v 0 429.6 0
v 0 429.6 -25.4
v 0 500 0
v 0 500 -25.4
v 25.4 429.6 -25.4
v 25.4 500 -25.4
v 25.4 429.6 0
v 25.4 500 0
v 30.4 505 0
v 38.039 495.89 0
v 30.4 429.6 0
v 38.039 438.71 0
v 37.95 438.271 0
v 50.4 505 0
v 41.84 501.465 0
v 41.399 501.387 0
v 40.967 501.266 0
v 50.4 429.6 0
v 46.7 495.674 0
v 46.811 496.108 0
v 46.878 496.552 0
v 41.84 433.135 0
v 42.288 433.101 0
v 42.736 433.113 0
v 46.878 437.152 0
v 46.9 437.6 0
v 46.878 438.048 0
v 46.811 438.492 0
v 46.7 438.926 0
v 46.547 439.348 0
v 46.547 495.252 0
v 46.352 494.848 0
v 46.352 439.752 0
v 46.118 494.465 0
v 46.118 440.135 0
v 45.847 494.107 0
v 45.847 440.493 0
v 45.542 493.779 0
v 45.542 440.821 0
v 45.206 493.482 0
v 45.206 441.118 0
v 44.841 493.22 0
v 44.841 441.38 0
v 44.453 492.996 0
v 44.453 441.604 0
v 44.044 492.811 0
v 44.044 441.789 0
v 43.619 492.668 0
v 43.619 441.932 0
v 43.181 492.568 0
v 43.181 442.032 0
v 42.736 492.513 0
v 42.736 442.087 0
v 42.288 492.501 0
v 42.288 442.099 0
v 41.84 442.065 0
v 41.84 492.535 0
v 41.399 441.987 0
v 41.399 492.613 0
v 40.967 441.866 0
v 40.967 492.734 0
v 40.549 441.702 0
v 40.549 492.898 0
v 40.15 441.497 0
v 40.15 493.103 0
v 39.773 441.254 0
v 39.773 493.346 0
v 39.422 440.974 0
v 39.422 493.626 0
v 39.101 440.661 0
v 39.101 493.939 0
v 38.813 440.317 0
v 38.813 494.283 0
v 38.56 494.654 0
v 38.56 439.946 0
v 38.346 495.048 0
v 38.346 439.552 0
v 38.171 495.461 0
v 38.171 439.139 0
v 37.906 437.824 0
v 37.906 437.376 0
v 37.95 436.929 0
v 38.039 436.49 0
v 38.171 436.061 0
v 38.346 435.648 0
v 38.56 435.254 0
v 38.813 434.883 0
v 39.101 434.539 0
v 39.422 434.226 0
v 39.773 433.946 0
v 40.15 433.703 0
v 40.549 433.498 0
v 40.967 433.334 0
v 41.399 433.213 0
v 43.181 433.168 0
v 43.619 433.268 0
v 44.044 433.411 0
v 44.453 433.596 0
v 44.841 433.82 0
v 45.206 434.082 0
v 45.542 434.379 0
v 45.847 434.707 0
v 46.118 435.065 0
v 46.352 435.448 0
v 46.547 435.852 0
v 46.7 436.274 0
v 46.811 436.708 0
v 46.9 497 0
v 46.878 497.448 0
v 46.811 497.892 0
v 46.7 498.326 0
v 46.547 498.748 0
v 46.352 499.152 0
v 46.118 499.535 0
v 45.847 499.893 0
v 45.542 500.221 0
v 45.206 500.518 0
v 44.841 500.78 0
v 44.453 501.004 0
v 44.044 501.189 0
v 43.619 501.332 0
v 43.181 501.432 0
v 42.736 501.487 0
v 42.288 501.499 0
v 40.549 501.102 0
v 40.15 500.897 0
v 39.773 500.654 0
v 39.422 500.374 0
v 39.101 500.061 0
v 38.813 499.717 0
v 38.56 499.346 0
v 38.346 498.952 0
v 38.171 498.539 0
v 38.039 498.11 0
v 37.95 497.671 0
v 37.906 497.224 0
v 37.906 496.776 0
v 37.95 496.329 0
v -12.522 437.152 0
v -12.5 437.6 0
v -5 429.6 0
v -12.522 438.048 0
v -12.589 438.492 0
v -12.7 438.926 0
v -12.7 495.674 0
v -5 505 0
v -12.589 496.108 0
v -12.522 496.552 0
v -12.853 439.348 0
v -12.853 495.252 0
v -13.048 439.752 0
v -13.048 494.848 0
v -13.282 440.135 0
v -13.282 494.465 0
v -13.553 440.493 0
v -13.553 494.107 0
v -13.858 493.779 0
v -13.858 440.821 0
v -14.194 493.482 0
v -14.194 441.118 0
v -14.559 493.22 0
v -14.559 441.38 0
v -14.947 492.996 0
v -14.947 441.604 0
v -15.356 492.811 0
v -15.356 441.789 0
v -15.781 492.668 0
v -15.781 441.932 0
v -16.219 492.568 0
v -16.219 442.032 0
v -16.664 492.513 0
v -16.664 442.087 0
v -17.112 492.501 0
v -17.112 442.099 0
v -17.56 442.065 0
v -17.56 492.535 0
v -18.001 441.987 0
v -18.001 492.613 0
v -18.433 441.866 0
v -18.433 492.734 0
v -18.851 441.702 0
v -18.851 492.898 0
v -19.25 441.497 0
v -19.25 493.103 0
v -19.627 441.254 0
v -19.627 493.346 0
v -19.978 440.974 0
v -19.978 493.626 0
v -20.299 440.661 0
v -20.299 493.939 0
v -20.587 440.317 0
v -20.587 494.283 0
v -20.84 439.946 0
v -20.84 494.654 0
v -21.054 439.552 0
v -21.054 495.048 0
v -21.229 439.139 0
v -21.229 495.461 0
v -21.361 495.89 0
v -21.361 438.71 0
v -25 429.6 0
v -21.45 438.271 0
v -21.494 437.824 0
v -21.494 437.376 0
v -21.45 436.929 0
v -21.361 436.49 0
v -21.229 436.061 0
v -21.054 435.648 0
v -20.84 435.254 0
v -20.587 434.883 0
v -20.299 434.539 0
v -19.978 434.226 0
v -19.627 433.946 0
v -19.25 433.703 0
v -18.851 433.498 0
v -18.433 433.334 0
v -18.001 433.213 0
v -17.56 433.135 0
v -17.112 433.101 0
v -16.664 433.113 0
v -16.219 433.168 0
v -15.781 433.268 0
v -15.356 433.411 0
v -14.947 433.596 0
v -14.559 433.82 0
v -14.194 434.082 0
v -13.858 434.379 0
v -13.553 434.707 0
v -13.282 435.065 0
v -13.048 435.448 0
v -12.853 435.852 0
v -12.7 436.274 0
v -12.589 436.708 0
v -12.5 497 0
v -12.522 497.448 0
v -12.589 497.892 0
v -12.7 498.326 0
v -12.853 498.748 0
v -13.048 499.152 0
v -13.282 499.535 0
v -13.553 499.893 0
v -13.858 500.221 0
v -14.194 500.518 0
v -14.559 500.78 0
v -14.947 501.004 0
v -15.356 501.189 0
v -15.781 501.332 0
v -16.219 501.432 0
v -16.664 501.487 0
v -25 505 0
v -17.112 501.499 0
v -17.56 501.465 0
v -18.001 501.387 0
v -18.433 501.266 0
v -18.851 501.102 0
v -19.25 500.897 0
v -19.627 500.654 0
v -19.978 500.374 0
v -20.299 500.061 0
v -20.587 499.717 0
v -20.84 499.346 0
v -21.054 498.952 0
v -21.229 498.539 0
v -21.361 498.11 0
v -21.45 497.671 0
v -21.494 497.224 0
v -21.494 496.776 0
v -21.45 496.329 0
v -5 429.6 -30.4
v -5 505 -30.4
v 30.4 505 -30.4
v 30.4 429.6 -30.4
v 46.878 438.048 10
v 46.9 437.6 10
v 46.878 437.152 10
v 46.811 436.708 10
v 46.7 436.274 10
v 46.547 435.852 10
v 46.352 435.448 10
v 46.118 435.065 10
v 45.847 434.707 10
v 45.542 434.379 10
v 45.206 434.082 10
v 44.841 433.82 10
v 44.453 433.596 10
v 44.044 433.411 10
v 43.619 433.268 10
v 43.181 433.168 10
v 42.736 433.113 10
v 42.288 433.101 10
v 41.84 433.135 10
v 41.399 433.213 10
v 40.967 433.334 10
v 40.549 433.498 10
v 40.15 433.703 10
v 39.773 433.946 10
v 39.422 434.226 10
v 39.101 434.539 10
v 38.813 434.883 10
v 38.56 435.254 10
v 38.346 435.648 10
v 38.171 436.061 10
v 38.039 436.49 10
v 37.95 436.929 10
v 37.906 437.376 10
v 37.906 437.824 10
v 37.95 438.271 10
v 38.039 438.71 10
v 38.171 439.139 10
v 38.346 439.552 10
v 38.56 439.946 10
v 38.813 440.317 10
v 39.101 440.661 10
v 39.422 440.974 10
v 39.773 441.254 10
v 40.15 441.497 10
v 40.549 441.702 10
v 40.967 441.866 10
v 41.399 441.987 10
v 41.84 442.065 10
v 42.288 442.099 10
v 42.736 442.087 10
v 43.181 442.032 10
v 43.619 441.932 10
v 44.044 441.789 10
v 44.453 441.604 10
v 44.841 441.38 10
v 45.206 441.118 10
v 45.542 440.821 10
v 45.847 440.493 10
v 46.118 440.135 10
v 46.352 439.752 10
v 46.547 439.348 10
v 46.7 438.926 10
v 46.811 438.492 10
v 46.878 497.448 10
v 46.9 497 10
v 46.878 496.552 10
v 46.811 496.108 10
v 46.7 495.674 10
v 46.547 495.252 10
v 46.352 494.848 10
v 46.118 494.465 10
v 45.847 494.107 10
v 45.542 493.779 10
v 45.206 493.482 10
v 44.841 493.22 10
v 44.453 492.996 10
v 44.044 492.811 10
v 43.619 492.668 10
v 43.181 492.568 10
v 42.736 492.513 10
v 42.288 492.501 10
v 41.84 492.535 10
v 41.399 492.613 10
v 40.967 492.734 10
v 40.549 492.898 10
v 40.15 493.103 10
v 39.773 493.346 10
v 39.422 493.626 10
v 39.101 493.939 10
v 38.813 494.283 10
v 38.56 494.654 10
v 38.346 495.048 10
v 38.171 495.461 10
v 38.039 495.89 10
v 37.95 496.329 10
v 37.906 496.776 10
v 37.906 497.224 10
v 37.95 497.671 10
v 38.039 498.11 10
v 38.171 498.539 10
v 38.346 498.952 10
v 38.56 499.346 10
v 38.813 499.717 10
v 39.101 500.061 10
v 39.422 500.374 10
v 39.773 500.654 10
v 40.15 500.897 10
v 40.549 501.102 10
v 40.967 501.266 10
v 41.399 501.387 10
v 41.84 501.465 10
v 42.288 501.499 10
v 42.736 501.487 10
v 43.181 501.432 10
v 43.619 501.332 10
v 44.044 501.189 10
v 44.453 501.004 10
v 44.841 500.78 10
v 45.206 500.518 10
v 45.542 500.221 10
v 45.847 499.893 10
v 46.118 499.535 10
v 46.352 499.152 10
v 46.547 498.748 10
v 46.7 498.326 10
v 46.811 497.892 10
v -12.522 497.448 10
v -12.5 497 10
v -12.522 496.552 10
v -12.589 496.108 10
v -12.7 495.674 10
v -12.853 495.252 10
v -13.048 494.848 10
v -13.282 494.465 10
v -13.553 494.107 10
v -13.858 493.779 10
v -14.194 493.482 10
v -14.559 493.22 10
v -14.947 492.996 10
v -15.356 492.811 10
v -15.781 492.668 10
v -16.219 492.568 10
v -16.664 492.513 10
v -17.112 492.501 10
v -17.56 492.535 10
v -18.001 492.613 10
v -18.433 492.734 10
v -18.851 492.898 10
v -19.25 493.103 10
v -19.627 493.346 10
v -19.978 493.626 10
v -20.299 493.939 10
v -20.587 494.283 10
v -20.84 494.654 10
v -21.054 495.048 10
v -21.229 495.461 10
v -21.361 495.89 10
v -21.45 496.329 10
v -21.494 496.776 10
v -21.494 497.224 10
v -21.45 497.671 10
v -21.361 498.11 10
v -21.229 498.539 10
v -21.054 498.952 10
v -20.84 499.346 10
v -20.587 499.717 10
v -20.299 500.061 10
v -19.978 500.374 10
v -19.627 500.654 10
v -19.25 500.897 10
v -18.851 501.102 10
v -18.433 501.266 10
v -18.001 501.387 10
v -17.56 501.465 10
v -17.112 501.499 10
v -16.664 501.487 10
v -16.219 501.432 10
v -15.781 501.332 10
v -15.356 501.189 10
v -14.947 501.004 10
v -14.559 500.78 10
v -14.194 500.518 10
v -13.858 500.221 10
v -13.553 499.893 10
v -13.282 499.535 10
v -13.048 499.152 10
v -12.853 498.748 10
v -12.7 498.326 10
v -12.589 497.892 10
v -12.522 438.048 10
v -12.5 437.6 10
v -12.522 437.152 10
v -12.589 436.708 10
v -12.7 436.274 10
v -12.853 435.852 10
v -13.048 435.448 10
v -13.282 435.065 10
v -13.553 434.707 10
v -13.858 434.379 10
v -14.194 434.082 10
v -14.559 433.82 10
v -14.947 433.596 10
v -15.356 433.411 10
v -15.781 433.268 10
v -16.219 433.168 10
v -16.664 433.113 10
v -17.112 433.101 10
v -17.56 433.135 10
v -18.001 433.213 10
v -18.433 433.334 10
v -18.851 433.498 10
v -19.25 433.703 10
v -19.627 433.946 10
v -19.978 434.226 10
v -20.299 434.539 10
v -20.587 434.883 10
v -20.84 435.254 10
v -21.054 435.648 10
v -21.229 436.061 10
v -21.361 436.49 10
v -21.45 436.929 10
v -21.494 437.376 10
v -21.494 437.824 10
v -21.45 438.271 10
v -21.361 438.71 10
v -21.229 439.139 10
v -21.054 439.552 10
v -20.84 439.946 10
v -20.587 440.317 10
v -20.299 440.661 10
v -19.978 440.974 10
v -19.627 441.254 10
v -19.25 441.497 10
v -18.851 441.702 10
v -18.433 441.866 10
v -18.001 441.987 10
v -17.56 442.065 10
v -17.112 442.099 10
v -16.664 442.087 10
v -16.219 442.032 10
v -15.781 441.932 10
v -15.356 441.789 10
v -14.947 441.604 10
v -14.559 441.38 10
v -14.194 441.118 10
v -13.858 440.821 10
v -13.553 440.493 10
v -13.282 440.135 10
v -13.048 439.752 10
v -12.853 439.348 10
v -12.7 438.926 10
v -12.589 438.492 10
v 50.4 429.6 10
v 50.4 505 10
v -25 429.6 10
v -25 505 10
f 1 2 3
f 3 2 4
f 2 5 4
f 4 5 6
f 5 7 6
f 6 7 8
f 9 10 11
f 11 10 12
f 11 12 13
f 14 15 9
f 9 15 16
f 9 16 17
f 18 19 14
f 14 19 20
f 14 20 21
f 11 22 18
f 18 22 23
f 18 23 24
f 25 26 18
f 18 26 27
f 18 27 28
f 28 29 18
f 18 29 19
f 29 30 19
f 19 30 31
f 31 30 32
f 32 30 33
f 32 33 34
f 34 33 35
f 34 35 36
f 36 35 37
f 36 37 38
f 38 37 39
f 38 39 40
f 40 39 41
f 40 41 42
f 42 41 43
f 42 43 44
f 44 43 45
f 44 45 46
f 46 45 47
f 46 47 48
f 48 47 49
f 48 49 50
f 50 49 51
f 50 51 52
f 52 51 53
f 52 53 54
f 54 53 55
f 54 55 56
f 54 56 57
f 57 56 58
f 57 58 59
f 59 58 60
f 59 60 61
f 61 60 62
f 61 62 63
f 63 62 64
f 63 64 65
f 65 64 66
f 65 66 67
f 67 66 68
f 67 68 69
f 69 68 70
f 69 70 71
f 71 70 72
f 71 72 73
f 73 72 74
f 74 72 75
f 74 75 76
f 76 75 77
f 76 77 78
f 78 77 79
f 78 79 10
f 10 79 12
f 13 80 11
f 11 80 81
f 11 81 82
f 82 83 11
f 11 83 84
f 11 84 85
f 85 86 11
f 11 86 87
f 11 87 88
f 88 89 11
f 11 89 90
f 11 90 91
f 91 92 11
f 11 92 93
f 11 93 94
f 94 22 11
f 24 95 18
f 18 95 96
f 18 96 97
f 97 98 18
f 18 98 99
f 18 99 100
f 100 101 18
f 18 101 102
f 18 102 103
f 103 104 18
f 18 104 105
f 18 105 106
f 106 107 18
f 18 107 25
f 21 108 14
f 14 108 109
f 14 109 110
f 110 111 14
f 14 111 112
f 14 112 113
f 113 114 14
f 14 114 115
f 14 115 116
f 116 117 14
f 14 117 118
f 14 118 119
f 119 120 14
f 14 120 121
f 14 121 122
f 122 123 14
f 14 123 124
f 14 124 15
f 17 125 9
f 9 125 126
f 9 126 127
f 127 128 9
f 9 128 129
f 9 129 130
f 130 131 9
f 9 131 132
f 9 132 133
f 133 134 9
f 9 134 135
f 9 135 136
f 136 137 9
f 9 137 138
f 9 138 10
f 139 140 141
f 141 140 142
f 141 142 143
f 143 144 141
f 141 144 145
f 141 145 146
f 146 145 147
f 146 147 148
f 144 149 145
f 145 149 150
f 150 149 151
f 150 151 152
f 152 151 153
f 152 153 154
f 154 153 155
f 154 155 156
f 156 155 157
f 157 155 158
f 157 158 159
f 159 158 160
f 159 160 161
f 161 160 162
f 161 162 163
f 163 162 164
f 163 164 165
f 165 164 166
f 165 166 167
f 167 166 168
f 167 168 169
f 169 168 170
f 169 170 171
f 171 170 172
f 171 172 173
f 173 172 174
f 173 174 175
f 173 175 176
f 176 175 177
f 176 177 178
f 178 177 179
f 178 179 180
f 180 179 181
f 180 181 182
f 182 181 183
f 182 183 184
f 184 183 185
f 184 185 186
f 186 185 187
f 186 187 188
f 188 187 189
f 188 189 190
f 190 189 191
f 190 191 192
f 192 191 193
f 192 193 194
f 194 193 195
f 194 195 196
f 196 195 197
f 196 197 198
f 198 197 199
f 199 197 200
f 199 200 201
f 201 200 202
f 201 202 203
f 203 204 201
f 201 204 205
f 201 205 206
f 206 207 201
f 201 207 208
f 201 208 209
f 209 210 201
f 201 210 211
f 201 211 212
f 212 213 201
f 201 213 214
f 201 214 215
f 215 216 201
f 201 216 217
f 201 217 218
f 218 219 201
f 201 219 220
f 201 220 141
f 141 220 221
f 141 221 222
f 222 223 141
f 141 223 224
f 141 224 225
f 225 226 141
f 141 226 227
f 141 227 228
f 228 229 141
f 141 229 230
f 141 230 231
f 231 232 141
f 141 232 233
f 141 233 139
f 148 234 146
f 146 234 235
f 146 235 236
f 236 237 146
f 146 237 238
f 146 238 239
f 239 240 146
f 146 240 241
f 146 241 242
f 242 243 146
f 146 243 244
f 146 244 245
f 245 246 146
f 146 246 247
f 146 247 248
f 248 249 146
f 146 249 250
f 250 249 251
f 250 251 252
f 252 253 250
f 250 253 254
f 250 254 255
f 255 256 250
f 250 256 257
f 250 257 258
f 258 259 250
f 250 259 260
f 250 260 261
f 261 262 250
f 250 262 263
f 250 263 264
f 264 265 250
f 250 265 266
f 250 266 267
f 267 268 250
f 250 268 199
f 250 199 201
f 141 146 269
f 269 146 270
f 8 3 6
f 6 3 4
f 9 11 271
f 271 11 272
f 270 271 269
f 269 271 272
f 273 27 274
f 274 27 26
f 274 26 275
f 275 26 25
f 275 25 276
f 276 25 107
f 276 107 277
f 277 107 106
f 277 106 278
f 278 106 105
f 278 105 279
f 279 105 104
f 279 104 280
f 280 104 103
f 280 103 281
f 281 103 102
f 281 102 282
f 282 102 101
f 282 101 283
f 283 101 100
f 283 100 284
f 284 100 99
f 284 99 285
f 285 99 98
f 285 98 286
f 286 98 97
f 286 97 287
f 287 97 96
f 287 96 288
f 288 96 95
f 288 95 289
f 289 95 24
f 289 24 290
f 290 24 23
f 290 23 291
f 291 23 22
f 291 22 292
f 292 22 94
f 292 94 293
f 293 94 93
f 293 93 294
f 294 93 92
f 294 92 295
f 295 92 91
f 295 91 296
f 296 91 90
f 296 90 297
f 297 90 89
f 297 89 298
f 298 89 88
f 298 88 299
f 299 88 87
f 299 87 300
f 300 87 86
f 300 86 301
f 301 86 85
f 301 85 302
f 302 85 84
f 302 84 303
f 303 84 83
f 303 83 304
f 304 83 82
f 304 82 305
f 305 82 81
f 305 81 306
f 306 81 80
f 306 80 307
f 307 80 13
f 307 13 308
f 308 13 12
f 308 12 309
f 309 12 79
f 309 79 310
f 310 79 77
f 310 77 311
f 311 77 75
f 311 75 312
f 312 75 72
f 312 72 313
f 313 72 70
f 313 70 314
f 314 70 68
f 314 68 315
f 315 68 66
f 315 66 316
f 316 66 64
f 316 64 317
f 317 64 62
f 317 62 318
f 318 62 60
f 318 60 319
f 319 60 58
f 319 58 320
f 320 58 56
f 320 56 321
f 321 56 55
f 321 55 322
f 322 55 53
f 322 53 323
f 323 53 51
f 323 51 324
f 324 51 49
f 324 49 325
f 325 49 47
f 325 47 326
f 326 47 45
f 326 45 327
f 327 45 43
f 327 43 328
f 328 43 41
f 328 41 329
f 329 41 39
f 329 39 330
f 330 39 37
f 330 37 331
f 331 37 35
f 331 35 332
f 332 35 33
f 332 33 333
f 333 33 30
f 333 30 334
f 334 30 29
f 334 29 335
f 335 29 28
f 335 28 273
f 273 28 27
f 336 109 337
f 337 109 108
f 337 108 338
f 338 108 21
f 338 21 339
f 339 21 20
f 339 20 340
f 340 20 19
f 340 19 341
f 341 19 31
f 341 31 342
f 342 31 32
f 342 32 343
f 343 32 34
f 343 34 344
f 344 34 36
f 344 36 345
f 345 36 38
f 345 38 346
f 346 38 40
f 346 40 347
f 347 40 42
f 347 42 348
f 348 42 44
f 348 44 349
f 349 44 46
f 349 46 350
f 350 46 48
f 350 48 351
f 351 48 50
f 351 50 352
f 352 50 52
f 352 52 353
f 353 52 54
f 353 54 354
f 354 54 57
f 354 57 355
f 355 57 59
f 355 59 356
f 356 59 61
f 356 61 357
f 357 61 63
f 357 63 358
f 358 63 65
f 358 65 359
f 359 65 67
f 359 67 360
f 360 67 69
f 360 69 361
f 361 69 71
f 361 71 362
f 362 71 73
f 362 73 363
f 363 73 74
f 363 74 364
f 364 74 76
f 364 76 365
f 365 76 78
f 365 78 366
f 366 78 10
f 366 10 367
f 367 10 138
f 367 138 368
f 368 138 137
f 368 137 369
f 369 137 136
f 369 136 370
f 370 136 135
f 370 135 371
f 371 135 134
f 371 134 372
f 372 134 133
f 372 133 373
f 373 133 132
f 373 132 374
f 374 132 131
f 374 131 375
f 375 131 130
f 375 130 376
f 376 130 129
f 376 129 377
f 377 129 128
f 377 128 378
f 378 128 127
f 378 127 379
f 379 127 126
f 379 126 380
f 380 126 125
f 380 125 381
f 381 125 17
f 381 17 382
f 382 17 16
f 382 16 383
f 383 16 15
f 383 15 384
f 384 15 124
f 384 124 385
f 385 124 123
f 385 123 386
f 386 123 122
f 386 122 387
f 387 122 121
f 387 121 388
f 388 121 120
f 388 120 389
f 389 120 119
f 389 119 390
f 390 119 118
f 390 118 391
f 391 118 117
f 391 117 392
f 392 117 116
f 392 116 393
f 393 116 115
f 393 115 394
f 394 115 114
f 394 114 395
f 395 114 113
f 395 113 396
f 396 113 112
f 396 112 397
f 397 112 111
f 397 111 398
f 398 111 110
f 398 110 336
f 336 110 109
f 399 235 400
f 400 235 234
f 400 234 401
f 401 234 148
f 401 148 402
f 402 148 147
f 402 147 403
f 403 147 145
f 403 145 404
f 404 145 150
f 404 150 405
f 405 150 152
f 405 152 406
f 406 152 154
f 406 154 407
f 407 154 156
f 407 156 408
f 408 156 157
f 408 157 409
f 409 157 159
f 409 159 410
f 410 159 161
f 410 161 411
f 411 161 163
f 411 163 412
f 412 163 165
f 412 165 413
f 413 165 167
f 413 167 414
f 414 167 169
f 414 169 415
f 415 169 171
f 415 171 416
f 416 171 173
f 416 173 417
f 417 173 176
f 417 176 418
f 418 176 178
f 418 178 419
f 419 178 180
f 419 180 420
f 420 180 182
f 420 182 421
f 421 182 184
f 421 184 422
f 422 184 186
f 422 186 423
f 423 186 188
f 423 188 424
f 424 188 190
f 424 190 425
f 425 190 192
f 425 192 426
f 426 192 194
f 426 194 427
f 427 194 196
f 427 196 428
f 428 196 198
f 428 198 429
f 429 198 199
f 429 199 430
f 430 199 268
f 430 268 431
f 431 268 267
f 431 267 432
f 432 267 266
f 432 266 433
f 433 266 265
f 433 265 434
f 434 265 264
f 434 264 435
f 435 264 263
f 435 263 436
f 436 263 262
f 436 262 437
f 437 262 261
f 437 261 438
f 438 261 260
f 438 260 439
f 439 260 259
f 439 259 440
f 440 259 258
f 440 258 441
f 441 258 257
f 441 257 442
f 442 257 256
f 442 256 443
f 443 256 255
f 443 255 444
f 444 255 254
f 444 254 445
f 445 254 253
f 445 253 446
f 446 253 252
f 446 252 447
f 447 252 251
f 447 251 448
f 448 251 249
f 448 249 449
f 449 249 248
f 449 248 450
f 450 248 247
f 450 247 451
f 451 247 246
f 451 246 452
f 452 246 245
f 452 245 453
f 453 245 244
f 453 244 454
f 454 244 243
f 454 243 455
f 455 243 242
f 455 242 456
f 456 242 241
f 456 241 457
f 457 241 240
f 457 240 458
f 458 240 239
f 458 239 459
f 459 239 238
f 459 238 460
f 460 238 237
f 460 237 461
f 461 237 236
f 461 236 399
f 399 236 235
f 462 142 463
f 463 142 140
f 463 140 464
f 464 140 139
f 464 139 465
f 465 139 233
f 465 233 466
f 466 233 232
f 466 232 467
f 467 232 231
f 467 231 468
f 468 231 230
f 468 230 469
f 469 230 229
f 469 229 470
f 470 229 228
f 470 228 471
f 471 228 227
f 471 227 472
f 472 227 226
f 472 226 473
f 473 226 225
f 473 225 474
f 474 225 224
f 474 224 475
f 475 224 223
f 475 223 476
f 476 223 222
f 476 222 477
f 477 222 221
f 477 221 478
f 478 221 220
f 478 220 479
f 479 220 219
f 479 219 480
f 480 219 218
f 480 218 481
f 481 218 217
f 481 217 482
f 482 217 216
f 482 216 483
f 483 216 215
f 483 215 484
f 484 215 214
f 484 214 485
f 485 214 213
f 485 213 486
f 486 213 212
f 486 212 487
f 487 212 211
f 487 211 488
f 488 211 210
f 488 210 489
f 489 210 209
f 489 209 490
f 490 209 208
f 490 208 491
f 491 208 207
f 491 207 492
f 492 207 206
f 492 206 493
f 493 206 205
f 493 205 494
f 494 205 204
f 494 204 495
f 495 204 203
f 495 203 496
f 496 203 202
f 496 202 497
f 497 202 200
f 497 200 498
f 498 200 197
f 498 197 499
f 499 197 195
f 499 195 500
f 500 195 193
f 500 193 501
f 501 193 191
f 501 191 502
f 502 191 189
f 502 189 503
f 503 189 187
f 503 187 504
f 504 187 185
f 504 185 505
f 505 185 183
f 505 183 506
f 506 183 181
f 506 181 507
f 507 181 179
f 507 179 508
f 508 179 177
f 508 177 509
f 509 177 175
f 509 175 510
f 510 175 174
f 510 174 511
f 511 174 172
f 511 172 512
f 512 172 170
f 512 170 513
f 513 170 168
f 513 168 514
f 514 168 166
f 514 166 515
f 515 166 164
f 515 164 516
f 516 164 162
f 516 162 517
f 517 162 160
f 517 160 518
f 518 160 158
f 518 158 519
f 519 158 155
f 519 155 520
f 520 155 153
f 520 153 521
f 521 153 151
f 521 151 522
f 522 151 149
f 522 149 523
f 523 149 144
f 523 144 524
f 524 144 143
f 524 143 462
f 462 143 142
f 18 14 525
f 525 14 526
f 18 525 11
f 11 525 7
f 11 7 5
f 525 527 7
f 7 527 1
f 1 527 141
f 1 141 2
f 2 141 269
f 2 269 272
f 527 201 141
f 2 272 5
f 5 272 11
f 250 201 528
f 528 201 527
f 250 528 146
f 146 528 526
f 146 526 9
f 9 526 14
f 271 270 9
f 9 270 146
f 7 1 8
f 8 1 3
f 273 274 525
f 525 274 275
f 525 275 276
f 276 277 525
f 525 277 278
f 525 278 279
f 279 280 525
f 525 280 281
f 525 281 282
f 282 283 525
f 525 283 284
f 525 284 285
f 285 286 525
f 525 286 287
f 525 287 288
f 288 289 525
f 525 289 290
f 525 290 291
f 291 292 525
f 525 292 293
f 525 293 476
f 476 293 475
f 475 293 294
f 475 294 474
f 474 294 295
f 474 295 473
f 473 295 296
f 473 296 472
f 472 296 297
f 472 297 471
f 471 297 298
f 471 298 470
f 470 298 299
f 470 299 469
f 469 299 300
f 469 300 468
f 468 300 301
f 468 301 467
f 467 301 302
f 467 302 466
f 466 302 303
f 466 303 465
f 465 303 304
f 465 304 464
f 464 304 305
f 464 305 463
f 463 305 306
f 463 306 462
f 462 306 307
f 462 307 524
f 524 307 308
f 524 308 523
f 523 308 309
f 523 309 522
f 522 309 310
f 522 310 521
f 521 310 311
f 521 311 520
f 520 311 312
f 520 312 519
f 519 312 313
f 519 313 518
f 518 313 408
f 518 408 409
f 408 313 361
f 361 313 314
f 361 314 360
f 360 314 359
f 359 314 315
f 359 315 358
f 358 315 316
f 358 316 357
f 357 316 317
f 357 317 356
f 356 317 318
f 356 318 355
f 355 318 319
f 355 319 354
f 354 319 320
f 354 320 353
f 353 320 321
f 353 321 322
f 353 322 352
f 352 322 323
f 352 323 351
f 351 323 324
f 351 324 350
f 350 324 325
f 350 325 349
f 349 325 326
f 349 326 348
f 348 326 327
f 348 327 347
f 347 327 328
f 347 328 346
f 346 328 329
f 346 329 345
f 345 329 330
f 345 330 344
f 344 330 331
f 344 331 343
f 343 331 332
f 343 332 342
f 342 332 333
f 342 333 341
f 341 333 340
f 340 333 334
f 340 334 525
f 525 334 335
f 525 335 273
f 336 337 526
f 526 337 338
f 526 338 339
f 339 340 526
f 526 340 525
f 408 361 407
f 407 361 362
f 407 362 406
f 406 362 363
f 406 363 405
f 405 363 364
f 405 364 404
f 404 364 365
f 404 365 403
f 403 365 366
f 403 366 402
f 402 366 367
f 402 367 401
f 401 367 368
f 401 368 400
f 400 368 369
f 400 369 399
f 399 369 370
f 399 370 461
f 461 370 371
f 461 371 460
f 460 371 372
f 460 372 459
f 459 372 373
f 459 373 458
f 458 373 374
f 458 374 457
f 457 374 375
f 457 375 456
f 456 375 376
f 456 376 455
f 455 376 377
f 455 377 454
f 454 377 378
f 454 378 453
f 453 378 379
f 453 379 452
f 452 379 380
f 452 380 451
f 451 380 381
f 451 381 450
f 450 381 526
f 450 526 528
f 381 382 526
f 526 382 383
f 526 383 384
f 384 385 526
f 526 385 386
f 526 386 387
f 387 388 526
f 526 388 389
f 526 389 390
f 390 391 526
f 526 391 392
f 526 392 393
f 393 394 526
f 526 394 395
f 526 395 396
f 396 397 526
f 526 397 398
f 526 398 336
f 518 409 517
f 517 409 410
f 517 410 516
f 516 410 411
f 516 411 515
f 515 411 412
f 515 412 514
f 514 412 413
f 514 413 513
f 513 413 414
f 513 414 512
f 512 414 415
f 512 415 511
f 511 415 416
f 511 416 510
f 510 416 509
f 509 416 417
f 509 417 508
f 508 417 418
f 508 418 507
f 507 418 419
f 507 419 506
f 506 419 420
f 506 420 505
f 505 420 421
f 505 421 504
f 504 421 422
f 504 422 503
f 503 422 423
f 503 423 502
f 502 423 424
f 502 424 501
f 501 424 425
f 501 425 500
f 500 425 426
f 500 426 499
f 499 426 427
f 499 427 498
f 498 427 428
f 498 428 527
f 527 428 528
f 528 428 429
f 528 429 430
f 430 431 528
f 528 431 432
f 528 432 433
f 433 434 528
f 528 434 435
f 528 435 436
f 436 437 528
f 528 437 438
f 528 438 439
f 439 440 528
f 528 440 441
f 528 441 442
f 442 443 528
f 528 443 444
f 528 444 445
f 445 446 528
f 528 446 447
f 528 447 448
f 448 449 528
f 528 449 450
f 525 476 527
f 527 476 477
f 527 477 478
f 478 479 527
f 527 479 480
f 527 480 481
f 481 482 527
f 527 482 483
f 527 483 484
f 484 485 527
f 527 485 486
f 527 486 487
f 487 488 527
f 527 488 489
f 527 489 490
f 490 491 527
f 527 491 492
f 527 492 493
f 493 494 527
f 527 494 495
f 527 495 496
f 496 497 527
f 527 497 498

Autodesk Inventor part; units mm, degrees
ref_plane "YZ Plane" through (0, 0, 0) normal (1, 0, 0) x (0, 1, 0)
ref_plane "XZ Plane" through (0, 0, 0) normal (0, 1, 0) x (-1, 0, 0)
ref_plane "XY Plane" through (0, 0, 0) normal (0, 0, 1) x (1, 0, 0)
sketch "Sketch1" plane through (0, 0, 0) normal (0, 0, 1) x (1, 0, 0)
  line L0 (0, 0) -> (25.4, 0) projected
  line L1 (25.4, 0) -> (25.4, 500) projected
  line L2 (0, 500) -> (25.4, 500) projected
  line L3 (0, 0) -> (0, 500) projected
  line L4 (115.4, 0) -> (140.8, 0) projected
  line L5 (140.8, 0) -> (140.8, 500) projected
  line L6 (115.4, 500) -> (140.8, 500) projected
  line L7 (115.4, 0) -> (115.4, 500) projected
  line L8 (-25, 505) -> (50.4, 505)
  line L9 (50.4, 505) -> (50.4, 429.6)
  line L10 (50.4, 429.6) -> (-25, 429.6)
  line L11 (-25, 429.6) -> (-25, 505)
  circle A0 centre (-17, 437.6) radius 4.5
  circle A1 centre (-17, 497) radius 4.5
  circle A2 centre (42.4, 497) radius 4.5
  circle A3 centre (42.4, 437.6) radius 4.5
  dimension "d0" = 25
  dimension "d31" = 25
  dimension "d32" = 5
  dimension "d33" = 9
  dimension "d34" = 9
  dimension "d35" = 9
  dimension "d36" = 9
  dimension "d37" = 8
  dimension "d38" = 8
  dimension "d39" = 8
  dimension "d40" = 8
  dimension "d41" = 8
  dimension "d42" = 8
  dimension "d43" = 8
  dimension "d44" = 8
extrude "Extrusion1" add sketch "Sketch1" along normal blind 10 contours L10 L11 L8 L9 L1 L2 L3 | L3 L2 L1 L10
sketch "Sketch3" plane through (0, 0, 0) normal (0, 0, -1) x (-1, 0, 0)
  line L0 (5, 505) -> (-30.4, 505)
  line L1 (-30.4, 505) -> (-30.4, 500)
  line L2 (-30.4, 500) -> (5, 500)
  line L3 (5, 500) -> (5, 505)
  line L4 (25, 505) -> (-50.4, 505) projected
  line L5 (25, 429.6) -> (25, 505) projected
  point P0 (0, 0)
  dimension "d45" = 35.4
  dimension "d46" = 20
  dimension "d47" = 5
extrude "Extrusion2" add sketch "Sketch3" along normal blind 30.4
sketch "Sketch5" plane through (-5, 500, 0) normal (0, -1, 0) x (1, 0, 0)
  line L0 (0, -30.4) -> (5, -30.4)
  line L1 (5, -30.4) -> (5, 0)
  line L2 (5, 0) -> (0, 0)
  line L3 (0, 0) -> (0, -30.4)
  line L4 (5, -30.4) -> (30.4, -30.4)
  line L5 (30.4, -30.4) -> (30.4, -25.4)
  line L6 (30.4, -25.4) -> (5, -25.4)
  line L7 (5, -25.4) -> (5, -30.4)
  line L8 (35.4, -30.4) -> (30.4, -30.4)
  line L9 (30.4, -30.4) -> (30.4, 0)
  line L10 (30.4, 0) -> (35.4, 0)
  line L11 (35.4, 0) -> (35.4, -30.4)
  line L12 (55.4, 0) -> (-20, 0) projected
  line L13 (35.4, -30.4) -> (0, -30.4) projected
  line L14 (0, 0) -> (0, -30.4) projected
  line L15 (35.4, 0) -> (35.4, -30.4) projected
  point P0 (5, 0)
  dimension "d48" = 5
  dimension "d49" = 25.4
  dimension "d50" = 25.4
extrude "Extrusion4" add sketch "Sketch5" along normal up to surface (70.4 mm away) contours L3 L2 L1 L0 | L1 L6 L5 L4 | L5 L9 L10 L11 L8
properties part number "CornerBracket" material "PC/ABS Plastic"
